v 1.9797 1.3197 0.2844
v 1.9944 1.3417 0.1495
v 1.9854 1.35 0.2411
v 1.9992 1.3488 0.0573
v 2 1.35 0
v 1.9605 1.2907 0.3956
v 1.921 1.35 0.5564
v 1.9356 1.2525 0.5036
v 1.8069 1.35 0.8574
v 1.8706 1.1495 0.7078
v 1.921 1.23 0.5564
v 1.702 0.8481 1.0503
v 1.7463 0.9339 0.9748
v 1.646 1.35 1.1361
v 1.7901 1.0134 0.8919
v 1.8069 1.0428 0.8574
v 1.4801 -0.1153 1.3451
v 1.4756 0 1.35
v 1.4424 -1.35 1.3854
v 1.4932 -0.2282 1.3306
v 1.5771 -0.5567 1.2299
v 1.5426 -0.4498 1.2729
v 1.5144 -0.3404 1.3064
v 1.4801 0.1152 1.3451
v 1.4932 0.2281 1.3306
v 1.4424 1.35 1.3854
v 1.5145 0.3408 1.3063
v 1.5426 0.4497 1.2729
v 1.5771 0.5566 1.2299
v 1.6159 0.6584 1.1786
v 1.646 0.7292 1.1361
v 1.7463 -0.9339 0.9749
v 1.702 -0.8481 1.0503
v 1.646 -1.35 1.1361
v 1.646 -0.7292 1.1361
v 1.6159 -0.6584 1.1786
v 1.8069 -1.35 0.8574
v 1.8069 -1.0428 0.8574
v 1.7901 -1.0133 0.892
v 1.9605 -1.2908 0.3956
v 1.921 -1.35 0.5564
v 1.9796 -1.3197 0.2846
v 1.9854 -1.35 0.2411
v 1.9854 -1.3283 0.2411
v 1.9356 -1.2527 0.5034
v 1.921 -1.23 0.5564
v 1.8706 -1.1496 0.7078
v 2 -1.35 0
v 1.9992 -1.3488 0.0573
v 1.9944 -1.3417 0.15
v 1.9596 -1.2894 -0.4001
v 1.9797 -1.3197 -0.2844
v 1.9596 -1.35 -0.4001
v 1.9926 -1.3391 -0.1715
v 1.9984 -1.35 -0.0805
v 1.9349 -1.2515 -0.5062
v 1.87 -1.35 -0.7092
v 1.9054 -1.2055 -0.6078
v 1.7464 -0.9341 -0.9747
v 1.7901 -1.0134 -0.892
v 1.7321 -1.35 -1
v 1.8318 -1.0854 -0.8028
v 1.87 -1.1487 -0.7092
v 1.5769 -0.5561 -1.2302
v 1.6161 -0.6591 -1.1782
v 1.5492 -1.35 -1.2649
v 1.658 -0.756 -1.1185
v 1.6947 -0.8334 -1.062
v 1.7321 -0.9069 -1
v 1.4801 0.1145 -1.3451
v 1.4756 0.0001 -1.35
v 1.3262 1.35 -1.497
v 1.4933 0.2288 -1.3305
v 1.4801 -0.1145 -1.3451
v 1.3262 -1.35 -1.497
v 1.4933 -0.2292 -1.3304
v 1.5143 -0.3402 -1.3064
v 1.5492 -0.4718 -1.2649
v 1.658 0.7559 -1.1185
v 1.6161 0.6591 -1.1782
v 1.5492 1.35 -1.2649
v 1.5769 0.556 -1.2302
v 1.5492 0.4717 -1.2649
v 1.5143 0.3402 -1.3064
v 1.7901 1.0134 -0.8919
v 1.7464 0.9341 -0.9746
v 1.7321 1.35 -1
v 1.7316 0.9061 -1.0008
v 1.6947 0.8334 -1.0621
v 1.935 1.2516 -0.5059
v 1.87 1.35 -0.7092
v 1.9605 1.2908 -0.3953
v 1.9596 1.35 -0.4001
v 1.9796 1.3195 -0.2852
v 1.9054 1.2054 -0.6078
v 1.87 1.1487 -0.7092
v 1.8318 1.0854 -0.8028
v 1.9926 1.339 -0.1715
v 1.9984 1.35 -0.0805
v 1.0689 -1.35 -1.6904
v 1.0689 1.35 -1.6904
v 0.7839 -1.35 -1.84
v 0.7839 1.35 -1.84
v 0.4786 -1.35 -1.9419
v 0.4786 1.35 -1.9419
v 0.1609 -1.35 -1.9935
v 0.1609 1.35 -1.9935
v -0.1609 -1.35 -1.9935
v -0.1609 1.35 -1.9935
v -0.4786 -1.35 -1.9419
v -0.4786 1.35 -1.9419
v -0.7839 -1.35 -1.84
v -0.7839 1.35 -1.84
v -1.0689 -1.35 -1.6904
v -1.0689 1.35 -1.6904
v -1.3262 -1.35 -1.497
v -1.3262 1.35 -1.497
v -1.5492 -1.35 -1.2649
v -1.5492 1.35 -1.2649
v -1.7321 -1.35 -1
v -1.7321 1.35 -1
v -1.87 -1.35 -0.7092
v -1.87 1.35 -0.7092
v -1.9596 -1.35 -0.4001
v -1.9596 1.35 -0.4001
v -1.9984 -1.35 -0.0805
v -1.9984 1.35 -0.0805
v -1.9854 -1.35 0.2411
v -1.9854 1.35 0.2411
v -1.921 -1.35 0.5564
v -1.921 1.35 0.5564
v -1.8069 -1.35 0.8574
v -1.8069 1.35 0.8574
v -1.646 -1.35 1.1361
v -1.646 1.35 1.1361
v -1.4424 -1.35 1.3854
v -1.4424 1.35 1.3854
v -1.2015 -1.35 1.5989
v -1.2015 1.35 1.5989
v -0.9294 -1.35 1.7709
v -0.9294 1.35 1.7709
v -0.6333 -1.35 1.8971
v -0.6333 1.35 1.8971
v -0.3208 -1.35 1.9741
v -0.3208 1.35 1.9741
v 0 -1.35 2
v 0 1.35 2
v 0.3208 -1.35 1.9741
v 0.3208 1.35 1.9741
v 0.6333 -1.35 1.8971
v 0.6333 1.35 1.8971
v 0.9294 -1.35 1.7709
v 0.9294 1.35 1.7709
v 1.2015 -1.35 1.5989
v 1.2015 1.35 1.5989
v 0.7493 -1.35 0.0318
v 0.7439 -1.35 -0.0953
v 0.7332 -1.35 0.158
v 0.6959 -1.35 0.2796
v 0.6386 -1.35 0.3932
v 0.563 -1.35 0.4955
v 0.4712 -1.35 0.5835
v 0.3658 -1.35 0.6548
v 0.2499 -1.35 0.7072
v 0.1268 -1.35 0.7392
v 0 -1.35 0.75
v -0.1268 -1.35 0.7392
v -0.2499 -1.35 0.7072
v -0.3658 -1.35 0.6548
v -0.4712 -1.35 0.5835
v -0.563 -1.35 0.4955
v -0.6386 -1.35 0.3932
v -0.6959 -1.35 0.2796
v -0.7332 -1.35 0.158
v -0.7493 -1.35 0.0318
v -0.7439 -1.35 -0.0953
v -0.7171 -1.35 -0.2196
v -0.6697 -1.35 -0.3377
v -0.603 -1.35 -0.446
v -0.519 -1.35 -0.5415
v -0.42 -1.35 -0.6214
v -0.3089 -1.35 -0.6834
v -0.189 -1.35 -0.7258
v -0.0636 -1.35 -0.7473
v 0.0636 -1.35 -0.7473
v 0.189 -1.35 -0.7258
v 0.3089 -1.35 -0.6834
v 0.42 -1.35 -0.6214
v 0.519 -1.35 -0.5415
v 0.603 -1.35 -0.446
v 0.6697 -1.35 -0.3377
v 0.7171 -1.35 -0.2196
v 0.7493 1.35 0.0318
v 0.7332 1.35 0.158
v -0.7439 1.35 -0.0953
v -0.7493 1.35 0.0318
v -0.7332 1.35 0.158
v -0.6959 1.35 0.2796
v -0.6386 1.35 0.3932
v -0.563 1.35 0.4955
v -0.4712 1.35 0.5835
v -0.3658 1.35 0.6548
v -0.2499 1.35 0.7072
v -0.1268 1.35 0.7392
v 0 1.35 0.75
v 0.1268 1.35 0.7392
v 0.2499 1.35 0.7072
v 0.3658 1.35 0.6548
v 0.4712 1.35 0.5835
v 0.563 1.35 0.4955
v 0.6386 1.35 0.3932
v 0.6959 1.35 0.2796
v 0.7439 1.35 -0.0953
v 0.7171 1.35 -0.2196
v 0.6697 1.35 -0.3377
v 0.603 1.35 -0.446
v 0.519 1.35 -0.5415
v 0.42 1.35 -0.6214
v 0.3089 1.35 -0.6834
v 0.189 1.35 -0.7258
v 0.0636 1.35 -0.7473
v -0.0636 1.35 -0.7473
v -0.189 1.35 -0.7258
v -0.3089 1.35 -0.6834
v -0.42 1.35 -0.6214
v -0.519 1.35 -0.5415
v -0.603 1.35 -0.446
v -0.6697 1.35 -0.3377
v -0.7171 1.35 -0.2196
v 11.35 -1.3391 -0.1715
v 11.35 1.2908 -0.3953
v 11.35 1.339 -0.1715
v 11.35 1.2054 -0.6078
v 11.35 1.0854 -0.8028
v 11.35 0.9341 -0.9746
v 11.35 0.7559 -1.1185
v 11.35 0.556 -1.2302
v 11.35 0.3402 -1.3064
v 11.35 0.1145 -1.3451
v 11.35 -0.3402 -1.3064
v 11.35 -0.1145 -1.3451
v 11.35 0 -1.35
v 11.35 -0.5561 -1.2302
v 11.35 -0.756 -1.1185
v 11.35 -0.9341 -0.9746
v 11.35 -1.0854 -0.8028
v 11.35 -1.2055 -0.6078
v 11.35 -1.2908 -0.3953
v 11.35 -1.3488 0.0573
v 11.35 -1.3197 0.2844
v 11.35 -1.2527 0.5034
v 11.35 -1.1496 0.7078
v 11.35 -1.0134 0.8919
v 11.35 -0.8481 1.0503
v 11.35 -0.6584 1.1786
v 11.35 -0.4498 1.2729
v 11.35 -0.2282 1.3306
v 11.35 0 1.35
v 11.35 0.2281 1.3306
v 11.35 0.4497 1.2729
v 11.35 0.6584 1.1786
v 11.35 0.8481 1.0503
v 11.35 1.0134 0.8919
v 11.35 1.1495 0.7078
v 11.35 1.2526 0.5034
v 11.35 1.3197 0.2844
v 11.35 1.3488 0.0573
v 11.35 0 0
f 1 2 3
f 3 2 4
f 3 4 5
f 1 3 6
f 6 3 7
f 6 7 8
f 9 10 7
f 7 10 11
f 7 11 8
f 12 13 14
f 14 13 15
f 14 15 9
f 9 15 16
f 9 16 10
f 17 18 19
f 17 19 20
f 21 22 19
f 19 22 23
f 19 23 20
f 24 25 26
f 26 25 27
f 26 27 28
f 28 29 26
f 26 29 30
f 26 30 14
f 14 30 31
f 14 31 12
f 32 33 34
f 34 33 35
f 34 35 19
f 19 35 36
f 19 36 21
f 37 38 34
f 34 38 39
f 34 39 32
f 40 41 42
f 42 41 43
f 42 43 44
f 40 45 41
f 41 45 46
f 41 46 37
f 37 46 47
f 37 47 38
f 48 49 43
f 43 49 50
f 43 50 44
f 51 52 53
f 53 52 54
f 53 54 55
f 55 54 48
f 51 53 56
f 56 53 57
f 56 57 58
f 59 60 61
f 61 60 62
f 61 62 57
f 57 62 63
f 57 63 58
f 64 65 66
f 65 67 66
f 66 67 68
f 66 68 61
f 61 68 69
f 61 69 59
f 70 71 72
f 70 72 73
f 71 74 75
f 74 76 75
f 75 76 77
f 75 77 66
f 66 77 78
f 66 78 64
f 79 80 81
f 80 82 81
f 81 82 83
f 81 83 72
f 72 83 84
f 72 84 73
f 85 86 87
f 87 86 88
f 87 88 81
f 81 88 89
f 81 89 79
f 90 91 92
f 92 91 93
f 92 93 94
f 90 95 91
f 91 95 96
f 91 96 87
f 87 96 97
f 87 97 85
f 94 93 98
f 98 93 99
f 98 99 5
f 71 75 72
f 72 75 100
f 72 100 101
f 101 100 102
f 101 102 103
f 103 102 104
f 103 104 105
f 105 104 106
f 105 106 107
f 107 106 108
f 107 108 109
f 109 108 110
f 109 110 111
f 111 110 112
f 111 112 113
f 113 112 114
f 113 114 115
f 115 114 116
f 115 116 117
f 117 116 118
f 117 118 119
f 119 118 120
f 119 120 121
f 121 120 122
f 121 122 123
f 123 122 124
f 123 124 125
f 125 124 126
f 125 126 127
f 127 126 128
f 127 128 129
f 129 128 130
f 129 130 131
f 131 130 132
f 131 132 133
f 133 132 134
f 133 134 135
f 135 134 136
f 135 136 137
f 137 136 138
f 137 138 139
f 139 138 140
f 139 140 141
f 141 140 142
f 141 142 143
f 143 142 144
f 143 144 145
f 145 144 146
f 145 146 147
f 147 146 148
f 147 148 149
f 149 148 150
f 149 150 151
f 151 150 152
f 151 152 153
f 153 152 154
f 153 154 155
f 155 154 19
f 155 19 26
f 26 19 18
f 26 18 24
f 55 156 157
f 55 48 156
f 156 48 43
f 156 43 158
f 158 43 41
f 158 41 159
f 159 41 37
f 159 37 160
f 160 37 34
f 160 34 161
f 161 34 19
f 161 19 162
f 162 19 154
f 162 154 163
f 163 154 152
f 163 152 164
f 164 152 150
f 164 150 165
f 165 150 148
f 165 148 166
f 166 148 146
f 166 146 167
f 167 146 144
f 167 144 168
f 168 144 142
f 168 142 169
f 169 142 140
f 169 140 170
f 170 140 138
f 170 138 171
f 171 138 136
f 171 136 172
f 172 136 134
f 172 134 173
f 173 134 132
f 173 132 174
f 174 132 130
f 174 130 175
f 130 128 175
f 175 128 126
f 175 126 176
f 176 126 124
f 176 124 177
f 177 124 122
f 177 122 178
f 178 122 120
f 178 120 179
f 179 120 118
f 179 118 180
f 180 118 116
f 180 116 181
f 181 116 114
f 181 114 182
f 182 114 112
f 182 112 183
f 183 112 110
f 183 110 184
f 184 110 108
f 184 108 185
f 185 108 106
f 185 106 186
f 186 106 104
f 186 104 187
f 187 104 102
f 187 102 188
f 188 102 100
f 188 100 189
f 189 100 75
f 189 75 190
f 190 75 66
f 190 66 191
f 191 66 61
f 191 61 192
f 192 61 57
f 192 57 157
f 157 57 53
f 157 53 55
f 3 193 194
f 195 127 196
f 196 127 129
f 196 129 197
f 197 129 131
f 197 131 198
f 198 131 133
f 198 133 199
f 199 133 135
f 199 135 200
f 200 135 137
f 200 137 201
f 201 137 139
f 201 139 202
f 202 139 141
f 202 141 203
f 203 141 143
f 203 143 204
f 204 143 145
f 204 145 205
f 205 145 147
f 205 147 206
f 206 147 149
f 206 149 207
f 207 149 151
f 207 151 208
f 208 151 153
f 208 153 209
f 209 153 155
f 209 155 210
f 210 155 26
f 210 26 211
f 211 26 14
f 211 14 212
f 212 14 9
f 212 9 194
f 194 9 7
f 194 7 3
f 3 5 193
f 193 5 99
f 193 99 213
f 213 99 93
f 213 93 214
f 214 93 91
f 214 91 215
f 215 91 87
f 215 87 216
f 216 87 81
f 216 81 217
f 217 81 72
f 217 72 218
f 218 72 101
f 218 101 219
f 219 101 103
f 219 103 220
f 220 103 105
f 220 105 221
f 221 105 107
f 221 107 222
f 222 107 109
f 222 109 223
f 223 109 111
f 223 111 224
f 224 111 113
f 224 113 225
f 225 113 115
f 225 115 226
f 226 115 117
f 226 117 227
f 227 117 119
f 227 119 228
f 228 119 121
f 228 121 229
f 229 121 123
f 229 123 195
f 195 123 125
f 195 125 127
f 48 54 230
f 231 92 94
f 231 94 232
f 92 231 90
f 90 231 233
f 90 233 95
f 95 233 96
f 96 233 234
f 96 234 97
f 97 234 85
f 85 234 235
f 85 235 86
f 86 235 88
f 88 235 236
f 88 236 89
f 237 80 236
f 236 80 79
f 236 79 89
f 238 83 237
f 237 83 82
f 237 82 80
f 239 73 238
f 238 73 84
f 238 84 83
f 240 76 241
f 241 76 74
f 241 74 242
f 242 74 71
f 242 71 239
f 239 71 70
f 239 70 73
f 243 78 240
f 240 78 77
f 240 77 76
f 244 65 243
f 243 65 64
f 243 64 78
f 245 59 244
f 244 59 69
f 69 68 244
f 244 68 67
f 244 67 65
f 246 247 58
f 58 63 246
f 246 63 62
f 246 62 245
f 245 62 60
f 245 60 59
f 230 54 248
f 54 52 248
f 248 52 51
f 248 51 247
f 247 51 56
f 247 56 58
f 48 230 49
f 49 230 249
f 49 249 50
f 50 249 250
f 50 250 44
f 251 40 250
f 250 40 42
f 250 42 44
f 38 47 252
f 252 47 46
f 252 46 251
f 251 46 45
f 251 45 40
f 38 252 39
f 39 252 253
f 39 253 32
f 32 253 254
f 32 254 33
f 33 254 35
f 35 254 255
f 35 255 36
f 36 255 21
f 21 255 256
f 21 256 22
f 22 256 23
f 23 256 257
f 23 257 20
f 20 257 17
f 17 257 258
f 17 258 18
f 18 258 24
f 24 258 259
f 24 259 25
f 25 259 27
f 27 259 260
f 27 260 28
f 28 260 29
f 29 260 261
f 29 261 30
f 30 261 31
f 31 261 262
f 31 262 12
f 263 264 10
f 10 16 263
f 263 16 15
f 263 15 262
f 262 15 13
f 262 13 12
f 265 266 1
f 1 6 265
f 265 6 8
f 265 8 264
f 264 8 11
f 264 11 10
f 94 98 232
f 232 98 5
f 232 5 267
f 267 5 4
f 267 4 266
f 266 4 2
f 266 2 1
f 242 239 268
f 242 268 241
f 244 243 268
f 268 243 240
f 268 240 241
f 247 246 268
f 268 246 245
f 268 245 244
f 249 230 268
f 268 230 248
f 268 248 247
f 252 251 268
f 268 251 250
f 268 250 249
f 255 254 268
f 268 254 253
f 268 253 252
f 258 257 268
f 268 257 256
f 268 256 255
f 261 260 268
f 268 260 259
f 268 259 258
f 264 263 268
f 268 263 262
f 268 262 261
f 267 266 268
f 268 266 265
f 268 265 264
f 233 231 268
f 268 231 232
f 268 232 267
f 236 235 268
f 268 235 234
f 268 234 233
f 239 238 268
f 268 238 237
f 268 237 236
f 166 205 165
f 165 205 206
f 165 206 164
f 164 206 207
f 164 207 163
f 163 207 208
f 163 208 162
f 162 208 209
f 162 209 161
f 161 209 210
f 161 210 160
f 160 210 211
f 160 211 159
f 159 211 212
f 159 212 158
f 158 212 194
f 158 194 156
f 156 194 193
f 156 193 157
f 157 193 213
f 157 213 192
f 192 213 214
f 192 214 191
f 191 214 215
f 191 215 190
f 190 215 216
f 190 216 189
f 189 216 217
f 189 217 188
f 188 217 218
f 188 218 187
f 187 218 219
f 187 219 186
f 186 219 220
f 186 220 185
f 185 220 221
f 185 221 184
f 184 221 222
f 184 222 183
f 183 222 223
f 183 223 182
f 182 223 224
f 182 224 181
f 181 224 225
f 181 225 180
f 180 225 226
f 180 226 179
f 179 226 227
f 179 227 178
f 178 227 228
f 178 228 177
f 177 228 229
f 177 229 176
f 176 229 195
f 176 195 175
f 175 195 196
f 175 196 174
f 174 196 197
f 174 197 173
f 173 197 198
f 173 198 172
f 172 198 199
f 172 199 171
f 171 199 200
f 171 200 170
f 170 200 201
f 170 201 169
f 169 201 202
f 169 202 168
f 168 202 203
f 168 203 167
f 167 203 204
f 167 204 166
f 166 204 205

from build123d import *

# Parameters (mm, degrees)
SKETCH1_R                = 1.35
BOSS_EXTRUDE1_DEPTH      = 11.35
BOSS_EXTRUDE2_DEPTH      = 1.35
BOSS_EXTRUDE2_DEPTH_BACK = 1.35
SKETCH2_R                = 2
SKETCH3_R                = 0.75
CUT_EXTRUDE1_DEPTH       = 11.35


with BuildPart() as part:
    # Sketch1 → Boss-Extrude1 (new body)
    with BuildSketch(Plane(origin=(0, 0, 0), x_dir=(0, 0, -1), z_dir=(1, 0, 0))):
        Circle(SKETCH1_R)
    extrude(amount=BOSS_EXTRUDE1_DEPTH)

    # Sketch2 → Boss-Extrude2 (add, two sides: drawn at the far end of the back side and taken through both)
    with BuildSketch(Plane(origin=(0, 0, 0), x_dir=(1, 0, 0), z_dir=(0, 1, 0)).offset(-BOSS_EXTRUDE2_DEPTH_BACK)):
        Circle(SKETCH2_R)
    extrude(amount=BOSS_EXTRUDE2_DEPTH + BOSS_EXTRUDE2_DEPTH_BACK)

    # Sketch3 → Cut-Extrude1 (cut)
    with BuildSketch(Plane(origin=(0, 1.35, 0), x_dir=(1, 0, 0), z_dir=(0, 1, 0))):
        Circle(SKETCH3_R)
    extrude(amount=-CUT_EXTRUDE1_DEPTH, mode=Mode.SUBTRACT)


solid = part.part
